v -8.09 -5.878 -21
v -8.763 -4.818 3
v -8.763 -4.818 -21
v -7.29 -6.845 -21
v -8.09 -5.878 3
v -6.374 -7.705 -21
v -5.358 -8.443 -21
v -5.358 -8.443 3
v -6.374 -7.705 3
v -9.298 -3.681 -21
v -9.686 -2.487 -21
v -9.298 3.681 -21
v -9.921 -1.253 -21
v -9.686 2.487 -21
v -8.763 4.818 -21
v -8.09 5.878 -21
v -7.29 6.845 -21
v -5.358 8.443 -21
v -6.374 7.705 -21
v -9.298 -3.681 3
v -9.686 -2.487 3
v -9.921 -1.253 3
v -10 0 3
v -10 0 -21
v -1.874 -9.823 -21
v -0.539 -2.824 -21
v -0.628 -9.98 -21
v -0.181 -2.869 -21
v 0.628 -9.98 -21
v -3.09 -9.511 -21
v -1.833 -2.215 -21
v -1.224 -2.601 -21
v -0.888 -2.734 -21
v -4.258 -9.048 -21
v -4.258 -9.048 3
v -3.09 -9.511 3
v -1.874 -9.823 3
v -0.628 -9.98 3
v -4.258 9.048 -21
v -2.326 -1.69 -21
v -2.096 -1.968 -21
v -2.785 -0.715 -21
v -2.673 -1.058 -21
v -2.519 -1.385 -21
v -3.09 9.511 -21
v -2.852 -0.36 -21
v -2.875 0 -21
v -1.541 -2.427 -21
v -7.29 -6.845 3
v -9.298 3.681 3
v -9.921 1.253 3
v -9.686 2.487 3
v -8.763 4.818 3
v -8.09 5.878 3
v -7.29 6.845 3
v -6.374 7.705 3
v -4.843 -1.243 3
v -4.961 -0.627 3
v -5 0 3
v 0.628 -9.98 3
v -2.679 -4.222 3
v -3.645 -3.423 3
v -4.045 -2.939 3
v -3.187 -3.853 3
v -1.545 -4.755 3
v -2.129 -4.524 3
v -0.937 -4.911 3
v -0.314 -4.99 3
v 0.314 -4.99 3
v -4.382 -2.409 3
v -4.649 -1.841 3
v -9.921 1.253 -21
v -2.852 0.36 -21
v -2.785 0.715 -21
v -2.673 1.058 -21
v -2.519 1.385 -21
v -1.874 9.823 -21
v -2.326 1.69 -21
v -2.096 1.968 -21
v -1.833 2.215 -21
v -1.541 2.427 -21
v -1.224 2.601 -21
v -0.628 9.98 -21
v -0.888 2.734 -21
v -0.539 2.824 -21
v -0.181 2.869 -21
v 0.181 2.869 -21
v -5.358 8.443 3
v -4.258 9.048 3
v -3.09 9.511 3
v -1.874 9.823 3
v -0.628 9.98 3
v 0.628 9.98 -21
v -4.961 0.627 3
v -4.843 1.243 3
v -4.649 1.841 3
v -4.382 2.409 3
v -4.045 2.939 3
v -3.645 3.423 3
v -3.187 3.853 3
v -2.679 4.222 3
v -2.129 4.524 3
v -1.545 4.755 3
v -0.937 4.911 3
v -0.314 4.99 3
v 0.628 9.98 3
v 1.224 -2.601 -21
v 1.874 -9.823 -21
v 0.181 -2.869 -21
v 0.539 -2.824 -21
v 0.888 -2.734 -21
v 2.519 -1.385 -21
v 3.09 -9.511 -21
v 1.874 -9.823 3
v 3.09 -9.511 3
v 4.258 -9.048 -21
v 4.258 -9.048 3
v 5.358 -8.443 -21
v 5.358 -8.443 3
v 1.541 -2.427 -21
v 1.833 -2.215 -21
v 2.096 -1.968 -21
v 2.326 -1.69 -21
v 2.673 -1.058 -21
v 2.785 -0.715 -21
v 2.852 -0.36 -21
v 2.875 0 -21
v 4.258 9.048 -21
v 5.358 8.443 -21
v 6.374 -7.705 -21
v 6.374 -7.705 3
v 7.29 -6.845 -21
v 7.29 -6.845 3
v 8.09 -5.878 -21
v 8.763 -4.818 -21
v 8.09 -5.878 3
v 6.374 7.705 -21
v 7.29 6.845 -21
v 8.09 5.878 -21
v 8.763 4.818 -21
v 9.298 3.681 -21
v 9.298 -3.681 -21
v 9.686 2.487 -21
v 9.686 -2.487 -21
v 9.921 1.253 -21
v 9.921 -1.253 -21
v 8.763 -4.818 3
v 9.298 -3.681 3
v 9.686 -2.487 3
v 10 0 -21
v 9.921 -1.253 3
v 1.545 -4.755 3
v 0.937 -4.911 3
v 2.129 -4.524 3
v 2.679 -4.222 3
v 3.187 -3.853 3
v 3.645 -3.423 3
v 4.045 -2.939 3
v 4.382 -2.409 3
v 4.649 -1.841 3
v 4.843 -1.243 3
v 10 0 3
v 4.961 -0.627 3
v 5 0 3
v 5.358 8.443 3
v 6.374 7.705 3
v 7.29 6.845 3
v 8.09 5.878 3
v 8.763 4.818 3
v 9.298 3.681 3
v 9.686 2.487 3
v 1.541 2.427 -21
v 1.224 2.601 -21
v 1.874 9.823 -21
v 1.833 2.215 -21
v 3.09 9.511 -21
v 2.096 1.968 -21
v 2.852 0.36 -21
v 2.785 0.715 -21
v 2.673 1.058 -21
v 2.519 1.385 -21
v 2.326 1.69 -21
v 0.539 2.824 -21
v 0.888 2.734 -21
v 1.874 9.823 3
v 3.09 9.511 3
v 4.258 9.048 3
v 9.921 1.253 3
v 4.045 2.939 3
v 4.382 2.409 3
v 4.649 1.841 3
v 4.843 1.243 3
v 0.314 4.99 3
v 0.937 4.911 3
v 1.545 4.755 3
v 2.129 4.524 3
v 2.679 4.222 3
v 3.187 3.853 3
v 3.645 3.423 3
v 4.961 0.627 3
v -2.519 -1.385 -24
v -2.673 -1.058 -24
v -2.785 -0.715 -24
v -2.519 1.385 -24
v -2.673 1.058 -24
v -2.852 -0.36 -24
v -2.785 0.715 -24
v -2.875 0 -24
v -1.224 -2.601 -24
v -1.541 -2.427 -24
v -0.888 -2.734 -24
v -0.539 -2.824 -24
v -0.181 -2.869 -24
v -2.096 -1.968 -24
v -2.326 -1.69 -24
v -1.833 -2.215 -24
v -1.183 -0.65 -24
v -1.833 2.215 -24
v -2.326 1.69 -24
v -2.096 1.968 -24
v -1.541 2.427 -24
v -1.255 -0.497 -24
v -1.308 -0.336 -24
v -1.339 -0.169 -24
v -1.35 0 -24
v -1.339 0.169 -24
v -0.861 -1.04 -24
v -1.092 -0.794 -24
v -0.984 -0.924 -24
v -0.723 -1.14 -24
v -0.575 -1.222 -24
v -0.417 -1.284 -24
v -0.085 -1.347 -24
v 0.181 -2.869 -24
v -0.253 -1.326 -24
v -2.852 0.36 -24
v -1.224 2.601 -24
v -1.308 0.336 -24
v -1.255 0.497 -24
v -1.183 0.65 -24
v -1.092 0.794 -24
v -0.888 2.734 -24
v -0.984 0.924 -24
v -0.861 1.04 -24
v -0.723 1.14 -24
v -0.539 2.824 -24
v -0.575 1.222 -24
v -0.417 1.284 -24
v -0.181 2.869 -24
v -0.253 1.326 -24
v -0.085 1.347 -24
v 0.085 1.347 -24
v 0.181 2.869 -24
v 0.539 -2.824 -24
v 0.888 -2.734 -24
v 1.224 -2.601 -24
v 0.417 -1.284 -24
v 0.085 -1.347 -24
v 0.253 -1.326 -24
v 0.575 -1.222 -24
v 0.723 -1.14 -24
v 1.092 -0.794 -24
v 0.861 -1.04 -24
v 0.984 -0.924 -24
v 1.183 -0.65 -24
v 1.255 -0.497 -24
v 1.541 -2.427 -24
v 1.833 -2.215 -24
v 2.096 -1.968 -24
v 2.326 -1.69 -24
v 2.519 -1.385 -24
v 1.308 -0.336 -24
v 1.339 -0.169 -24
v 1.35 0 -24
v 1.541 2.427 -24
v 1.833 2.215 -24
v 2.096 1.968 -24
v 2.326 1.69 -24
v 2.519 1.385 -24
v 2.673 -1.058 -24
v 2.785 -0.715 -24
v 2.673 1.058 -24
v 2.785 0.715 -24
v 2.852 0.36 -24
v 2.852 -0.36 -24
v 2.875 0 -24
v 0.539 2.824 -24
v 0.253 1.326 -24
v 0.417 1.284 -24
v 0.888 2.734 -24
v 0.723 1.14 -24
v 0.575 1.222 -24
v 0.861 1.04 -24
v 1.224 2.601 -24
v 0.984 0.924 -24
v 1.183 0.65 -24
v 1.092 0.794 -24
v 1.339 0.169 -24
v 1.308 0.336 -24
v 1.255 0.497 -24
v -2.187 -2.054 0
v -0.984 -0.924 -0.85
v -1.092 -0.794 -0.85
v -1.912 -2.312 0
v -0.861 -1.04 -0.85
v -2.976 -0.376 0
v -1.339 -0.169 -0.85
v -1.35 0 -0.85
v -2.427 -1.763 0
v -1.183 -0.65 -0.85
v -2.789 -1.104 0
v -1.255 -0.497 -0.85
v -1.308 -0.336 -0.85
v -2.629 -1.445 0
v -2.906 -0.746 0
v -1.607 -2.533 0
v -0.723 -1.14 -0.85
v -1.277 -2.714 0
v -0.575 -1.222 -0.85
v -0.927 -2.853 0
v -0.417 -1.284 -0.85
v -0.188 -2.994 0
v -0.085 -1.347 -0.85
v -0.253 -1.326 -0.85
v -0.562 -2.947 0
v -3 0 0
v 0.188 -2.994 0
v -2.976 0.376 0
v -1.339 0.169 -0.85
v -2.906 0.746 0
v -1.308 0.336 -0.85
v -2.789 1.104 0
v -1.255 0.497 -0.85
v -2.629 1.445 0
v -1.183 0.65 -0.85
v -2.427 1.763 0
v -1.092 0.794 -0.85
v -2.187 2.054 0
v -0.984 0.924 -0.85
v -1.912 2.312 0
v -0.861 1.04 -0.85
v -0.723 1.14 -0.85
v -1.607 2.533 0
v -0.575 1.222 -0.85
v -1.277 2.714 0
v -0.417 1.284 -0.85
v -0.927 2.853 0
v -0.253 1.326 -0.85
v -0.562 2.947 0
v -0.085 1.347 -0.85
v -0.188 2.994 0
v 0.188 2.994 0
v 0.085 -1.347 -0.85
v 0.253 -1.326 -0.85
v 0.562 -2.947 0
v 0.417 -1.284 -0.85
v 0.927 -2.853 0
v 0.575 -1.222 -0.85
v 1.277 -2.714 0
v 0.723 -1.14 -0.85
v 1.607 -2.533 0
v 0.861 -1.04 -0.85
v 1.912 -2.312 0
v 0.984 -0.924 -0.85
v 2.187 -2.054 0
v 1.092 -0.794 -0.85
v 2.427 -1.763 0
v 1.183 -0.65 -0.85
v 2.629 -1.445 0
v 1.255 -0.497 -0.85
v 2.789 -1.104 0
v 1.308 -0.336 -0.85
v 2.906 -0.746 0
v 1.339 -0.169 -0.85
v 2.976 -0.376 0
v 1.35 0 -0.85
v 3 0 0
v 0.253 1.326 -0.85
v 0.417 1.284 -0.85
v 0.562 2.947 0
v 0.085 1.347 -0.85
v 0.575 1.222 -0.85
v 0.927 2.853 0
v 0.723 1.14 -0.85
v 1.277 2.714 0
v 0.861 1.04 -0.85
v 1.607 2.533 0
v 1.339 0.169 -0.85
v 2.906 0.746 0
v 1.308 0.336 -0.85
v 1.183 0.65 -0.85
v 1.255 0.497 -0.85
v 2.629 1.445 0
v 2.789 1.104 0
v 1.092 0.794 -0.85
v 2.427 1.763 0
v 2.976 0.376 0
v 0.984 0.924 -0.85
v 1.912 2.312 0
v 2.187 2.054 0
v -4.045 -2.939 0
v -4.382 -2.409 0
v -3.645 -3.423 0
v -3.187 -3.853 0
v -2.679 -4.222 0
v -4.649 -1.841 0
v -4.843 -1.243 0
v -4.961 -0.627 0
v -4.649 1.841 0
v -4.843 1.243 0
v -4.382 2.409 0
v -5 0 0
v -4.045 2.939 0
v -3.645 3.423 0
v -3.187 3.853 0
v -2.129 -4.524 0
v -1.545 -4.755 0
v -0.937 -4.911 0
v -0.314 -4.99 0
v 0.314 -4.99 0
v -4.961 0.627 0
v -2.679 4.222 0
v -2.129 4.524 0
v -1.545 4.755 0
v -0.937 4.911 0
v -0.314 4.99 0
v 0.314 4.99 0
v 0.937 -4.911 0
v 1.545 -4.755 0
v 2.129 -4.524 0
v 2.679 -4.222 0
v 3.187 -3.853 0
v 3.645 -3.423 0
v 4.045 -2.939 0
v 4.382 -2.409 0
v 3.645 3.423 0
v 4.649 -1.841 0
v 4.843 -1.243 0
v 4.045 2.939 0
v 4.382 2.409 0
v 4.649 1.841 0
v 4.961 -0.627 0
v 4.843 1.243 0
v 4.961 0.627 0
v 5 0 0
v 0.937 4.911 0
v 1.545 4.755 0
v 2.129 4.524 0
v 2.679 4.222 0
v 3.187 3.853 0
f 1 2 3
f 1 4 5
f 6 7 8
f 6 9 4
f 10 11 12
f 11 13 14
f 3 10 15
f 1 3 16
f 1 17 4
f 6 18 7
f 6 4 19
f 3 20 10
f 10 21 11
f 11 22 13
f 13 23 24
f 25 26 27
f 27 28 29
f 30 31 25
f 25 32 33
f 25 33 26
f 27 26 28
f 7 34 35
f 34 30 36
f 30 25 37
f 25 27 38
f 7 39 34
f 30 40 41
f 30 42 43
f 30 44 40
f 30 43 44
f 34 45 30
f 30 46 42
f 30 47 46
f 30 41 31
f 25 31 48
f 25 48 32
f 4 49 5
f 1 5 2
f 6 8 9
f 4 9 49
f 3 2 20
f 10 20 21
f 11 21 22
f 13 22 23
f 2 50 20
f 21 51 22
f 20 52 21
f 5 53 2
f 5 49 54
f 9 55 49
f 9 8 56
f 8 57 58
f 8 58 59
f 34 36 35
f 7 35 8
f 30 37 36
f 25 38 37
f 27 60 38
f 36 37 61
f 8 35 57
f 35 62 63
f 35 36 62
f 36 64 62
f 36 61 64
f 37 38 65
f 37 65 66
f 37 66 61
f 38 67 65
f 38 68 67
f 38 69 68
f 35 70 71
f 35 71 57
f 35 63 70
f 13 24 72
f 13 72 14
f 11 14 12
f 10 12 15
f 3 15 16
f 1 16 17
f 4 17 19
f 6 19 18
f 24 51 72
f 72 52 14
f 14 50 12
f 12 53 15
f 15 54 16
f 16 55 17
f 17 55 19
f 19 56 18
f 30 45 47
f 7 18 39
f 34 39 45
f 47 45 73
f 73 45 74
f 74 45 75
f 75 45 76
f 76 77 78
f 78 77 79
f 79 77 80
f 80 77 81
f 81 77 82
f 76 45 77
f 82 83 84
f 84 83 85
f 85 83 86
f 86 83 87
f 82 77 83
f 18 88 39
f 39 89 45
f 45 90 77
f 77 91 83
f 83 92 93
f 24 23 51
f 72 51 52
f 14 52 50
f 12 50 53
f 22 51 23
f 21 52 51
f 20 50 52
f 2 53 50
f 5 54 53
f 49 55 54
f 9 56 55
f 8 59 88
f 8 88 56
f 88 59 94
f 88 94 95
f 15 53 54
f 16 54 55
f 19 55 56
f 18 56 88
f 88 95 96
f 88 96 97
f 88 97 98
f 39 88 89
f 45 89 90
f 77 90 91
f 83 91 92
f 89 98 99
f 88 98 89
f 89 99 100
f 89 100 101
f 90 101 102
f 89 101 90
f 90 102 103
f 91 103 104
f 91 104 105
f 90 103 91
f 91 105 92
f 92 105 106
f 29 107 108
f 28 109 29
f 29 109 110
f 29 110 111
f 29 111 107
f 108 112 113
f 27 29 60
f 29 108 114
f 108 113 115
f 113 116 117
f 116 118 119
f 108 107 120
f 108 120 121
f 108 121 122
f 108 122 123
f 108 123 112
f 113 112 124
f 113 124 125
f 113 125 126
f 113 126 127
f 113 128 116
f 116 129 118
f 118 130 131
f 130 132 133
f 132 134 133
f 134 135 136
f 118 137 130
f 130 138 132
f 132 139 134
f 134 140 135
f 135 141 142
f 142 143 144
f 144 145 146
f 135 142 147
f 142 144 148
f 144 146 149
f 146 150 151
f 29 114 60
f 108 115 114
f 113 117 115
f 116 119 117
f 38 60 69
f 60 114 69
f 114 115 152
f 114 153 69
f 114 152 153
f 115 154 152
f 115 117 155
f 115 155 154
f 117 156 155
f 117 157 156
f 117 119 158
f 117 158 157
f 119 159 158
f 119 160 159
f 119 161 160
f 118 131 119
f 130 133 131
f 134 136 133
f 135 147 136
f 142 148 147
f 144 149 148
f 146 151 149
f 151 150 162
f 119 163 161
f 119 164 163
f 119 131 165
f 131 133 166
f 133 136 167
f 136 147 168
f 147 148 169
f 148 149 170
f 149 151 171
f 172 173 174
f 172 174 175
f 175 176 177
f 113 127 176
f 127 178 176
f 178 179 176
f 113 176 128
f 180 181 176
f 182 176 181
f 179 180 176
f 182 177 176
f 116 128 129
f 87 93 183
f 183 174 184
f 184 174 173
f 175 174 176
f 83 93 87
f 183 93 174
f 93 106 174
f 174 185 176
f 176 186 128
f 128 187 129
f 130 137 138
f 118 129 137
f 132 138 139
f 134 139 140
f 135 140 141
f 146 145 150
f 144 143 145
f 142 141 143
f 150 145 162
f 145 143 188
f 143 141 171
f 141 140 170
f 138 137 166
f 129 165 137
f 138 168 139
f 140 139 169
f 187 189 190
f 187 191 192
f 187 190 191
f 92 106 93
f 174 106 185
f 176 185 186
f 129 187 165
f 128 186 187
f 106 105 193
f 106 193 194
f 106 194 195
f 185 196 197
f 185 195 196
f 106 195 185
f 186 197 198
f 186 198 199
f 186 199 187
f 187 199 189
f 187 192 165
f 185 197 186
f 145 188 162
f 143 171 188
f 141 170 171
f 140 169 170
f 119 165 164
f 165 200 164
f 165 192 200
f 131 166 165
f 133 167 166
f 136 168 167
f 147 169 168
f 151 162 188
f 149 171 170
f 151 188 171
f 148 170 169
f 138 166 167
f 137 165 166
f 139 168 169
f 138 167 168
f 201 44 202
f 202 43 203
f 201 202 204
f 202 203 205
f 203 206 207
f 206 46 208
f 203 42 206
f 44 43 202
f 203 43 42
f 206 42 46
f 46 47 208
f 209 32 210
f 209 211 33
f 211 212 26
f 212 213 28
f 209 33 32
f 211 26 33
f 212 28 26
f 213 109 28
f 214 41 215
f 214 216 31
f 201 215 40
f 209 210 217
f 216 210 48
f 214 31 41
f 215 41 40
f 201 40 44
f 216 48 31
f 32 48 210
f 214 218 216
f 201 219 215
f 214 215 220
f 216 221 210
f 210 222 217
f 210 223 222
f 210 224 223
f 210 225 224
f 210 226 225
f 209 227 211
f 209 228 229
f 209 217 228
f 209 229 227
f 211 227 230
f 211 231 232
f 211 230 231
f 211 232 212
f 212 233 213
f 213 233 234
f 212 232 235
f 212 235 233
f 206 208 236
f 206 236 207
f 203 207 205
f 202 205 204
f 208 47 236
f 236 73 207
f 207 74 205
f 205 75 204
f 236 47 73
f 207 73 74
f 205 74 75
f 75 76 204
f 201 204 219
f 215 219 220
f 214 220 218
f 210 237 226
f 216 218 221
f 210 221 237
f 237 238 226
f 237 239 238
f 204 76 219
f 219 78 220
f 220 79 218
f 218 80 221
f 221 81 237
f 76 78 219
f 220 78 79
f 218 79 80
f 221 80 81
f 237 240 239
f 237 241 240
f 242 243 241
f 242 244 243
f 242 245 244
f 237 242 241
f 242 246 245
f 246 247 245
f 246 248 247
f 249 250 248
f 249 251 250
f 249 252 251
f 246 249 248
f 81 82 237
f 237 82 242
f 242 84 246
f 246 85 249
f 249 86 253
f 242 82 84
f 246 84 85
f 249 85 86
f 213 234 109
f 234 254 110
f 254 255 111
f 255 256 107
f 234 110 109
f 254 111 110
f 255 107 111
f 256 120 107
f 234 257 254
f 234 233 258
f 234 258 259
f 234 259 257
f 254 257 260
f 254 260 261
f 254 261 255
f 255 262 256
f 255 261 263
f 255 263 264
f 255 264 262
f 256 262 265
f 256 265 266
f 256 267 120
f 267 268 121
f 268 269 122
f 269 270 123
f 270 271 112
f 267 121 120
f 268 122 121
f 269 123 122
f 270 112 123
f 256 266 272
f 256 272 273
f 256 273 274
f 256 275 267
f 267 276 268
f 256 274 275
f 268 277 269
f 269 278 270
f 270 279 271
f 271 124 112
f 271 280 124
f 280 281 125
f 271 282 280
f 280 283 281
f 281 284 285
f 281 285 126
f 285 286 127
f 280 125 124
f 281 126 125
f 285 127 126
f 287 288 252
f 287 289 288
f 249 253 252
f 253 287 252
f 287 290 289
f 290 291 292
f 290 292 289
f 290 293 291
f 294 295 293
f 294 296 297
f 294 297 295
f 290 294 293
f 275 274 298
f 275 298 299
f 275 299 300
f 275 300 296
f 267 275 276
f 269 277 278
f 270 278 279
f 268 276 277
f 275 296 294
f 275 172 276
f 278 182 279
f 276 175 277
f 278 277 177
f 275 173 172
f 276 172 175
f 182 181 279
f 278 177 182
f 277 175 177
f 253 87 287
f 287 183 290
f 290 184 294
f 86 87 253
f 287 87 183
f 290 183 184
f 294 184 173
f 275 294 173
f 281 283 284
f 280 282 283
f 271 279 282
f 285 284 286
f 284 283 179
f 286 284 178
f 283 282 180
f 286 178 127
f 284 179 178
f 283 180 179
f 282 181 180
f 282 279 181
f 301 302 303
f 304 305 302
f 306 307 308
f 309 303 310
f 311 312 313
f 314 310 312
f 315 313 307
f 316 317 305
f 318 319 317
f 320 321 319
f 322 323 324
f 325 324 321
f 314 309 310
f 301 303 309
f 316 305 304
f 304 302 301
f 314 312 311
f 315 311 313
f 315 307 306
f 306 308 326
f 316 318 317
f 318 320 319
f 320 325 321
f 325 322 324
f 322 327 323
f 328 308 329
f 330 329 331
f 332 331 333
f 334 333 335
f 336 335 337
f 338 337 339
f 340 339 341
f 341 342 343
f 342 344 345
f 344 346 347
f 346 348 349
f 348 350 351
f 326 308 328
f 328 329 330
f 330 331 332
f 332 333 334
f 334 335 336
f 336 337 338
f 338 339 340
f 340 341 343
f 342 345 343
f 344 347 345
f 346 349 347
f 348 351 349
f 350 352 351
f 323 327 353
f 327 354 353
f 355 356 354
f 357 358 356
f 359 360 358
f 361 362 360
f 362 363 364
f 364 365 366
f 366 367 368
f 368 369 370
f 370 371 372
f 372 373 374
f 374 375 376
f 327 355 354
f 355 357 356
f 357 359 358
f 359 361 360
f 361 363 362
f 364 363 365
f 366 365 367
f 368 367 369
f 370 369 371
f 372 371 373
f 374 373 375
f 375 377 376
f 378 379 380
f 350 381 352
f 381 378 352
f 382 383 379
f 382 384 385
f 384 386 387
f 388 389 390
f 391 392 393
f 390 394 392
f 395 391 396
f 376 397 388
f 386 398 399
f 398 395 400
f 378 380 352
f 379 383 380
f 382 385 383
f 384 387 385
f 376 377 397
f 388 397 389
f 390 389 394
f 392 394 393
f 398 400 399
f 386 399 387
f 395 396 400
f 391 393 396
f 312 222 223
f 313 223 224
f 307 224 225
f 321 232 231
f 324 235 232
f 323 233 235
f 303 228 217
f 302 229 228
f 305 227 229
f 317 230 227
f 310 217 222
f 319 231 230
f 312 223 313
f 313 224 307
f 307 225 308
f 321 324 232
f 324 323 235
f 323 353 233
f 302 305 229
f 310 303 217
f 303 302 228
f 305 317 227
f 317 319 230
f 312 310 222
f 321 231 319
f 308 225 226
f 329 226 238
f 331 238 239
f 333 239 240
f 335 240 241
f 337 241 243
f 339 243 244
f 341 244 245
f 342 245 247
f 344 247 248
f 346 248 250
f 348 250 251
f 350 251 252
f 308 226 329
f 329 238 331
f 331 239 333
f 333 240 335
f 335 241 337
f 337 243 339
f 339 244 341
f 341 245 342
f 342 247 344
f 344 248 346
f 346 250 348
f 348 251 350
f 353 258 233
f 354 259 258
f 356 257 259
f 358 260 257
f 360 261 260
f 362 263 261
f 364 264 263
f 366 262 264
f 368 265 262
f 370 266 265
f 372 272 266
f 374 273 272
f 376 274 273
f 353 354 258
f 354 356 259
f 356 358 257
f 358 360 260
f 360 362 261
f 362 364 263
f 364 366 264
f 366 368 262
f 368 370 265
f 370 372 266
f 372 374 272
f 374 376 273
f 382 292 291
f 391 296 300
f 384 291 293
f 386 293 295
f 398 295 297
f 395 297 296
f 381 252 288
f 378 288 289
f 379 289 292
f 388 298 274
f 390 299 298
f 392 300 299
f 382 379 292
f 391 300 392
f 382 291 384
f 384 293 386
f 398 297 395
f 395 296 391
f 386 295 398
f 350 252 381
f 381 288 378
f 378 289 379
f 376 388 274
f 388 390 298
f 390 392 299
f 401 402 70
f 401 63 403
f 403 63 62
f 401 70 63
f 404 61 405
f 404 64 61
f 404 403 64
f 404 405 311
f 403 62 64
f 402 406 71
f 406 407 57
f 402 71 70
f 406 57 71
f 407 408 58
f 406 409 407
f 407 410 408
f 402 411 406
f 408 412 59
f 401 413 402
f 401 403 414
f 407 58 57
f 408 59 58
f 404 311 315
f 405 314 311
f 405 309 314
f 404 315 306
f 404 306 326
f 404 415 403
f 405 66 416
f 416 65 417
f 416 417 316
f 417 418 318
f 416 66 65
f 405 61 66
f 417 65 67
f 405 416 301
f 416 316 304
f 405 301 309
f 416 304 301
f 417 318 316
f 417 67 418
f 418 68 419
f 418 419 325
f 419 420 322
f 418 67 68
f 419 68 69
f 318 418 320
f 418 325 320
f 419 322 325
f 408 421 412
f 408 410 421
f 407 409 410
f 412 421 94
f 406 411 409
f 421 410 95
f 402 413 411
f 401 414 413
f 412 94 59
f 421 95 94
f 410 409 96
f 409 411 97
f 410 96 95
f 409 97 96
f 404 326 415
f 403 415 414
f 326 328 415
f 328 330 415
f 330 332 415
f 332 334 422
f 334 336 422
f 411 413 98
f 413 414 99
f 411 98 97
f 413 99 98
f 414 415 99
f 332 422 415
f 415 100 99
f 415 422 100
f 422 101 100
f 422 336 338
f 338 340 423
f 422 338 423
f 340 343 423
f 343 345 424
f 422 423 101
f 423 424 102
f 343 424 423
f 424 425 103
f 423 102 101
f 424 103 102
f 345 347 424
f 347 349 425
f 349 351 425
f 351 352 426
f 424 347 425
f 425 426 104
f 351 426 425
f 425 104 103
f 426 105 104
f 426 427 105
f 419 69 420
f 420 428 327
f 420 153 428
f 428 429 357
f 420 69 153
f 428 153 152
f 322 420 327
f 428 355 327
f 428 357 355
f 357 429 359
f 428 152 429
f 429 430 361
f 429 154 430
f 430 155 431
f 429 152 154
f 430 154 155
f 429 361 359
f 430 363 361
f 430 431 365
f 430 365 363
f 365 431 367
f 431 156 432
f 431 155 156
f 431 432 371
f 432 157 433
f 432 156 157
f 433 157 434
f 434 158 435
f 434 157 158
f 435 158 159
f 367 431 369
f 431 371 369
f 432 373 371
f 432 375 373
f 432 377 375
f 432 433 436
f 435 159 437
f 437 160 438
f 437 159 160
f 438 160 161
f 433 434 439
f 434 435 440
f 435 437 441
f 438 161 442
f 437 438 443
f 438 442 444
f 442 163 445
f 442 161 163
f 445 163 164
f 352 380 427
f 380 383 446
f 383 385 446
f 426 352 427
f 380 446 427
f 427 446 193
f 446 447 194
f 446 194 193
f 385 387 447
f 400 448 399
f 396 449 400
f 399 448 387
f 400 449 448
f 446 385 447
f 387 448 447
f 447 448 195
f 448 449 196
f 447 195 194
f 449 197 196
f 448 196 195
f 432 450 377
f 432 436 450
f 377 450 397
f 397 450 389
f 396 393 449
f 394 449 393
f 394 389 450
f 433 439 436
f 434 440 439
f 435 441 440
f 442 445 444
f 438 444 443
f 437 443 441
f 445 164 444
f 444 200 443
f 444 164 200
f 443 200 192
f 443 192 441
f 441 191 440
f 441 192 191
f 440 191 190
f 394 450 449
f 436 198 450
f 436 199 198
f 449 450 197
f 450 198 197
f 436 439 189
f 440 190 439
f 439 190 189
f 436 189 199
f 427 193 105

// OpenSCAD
$fn = 50;


difference() {
	union() {
		translate(v = [0, 0, -21.0000000000]) {
			cylinder(h = 24, r = 10.0000000000);
		}
		#translate(v = [0, 0, -24.0000000000]) {
			cylinder(h = 24, r = 2.8750000000);
		}
	}
	union() {
		translate(v = [0, 0, 0]) {
			rotate(a = [0, 0, 0]) {
				difference() {
					union() {
						translate(v = [0, 0, -24.0000000000]) {
							cylinder(h = 24, r = 1.0000000000);
						}
						translate(v = [0, 0, -0.8500000000]) {
							cylinder(h = 0.8500000000, r1 = 1.3500000000, r2 = 3.0000000000);
						}
						translate(v = [0, 0, -24.0000000000]) {
							cylinder(h = 24, r = 1.3500000000);
						}
						translate(v = [0, 0, -24.0000000000]) {
							cylinder(h = 24, r = 1.0000000000);
						}
					}
					union();
				}
			}
		}
		#cylinder(h = 3, r = 5.0000000000);
	}
}
